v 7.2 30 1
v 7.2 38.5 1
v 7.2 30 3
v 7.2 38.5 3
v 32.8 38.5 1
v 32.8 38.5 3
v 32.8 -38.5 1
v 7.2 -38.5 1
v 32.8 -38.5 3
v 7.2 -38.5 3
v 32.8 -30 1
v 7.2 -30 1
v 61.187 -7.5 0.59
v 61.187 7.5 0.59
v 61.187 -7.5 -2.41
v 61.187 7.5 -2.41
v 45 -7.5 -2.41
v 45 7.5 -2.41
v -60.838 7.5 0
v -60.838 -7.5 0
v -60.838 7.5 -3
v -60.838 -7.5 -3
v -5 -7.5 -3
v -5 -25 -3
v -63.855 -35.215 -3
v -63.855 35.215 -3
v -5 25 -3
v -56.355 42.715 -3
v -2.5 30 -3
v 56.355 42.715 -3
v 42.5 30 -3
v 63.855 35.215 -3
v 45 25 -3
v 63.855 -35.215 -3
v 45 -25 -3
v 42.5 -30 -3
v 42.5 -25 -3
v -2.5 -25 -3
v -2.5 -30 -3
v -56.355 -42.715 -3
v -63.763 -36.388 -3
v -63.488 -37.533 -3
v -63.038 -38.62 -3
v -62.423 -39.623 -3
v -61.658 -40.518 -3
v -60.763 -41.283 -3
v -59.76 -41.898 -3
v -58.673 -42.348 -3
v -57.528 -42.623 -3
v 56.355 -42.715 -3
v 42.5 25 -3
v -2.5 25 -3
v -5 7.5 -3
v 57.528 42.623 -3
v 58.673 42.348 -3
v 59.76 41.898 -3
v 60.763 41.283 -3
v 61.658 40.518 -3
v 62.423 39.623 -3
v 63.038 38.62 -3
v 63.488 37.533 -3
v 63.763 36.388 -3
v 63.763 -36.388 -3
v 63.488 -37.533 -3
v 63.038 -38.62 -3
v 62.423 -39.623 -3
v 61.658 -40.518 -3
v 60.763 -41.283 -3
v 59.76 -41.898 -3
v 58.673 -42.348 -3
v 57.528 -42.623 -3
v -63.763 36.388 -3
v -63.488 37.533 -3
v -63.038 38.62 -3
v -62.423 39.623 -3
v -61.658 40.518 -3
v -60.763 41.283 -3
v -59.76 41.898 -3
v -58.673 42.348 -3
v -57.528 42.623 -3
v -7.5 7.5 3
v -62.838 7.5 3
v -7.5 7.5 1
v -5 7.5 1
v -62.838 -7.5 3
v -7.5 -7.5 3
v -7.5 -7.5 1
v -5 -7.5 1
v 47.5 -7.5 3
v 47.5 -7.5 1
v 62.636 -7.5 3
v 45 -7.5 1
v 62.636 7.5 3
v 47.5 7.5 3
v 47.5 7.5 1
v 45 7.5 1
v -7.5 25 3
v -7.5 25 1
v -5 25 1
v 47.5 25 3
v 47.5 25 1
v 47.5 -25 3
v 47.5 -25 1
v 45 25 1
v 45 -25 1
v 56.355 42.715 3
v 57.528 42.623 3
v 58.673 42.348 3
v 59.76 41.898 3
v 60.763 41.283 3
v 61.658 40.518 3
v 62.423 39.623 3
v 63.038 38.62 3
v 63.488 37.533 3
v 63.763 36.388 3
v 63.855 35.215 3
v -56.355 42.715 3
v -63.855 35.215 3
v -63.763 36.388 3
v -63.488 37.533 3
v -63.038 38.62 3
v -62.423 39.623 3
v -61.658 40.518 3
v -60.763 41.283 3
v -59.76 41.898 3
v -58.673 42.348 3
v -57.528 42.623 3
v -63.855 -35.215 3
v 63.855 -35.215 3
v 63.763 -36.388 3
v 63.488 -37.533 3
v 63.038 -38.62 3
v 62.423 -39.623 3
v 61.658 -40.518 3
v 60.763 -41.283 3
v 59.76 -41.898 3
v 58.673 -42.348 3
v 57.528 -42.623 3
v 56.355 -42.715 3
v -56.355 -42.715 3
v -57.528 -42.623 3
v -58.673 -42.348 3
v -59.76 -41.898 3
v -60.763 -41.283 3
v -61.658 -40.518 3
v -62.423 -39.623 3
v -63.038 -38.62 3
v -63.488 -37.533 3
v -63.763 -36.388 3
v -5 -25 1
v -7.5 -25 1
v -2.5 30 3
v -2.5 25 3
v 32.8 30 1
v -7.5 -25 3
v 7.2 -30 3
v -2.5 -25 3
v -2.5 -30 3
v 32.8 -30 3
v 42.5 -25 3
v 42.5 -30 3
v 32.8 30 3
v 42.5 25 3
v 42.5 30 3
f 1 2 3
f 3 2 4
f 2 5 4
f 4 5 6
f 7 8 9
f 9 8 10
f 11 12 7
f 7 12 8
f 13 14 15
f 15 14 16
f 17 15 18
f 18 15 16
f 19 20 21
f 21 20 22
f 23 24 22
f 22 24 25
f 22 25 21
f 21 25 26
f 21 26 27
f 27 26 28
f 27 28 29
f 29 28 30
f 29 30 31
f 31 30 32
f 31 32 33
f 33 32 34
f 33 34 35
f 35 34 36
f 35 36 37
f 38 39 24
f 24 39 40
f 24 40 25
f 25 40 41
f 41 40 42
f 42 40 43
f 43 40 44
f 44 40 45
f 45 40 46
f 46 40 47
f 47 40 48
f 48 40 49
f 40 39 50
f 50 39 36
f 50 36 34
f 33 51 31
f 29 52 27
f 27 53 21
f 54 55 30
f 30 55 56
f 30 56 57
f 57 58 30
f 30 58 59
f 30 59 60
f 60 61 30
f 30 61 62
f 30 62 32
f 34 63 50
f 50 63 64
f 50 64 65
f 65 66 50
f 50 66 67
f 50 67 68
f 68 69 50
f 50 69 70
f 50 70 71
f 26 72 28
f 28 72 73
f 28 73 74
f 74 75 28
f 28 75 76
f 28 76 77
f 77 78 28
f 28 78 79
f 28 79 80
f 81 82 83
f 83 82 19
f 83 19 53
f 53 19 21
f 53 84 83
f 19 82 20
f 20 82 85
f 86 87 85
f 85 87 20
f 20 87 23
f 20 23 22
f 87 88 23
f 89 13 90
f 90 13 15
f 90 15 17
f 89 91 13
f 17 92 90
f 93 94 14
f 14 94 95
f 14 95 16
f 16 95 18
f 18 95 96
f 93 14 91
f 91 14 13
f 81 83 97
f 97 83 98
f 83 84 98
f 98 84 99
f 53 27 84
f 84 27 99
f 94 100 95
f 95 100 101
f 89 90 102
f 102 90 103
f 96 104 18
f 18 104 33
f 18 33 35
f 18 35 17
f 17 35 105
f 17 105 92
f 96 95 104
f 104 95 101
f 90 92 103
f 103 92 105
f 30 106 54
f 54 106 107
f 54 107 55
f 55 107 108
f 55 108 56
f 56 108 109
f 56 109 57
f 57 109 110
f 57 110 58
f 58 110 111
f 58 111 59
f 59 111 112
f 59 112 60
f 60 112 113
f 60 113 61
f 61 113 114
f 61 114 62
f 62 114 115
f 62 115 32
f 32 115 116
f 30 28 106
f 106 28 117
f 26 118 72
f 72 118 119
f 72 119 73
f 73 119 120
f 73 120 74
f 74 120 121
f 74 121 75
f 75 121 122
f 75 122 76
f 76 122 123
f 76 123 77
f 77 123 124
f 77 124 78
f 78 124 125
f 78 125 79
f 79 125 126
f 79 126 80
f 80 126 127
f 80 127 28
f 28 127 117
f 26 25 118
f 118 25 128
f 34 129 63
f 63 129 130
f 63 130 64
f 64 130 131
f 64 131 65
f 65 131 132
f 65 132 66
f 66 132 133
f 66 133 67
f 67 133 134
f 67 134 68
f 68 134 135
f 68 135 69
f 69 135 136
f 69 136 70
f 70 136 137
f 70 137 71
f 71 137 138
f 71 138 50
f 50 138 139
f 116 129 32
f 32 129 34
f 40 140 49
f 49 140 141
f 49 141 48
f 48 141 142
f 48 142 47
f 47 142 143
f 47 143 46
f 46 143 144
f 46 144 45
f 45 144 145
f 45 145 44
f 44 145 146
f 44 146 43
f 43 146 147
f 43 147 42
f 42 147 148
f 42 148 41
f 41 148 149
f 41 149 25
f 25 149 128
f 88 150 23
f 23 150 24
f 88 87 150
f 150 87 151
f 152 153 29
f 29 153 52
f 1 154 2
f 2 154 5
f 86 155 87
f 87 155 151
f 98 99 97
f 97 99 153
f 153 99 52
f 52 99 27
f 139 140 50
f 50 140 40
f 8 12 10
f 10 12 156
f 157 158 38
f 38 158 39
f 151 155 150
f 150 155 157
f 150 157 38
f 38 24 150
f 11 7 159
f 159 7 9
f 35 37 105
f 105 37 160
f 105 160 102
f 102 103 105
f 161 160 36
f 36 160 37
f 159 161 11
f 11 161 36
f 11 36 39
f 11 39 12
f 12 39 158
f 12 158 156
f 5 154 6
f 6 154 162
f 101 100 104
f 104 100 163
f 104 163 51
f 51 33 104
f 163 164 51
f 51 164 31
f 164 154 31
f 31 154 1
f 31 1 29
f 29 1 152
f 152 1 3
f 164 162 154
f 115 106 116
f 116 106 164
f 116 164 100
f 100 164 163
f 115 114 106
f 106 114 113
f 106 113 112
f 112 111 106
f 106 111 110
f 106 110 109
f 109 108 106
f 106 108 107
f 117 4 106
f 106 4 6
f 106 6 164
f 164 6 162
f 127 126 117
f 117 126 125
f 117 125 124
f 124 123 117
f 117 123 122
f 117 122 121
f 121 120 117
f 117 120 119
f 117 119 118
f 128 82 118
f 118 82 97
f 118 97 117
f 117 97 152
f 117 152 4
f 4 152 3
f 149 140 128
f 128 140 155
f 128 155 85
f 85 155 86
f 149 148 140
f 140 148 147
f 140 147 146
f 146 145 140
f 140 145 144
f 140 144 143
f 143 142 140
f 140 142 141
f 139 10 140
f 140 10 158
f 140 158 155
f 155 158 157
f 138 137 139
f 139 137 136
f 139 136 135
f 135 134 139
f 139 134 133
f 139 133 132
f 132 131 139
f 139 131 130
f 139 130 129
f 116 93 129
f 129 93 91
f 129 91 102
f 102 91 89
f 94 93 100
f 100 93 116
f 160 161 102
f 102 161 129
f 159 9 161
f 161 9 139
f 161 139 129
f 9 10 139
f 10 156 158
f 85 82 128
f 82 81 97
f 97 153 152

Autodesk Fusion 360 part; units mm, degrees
sketch "Sketch1" plane through (0, 0, 0) normal (0, 0, 1) x (1, 0, 0)
  line L0 (63.855, -42.715) -> (-63.855, -42.715)
  line L1 (-63.855, -42.715) -> (-63.855, 42.715)
  line L2 (-63.855, 42.715) -> (63.855, 42.715)
  line L3 (63.855, 42.715) -> (63.855, -42.715)
  line L4 (63.855, -42.715) -> (-63.855, 42.715) construction
  line L5 (-63.855, -42.715) -> (63.855, 42.715) construction
  line L6 (45, -38.5) -> (-5, -38.5)
  line L7 (-5, -38.5) -> (-5, 38.5)
  line L8 (-5, 38.5) -> (45, 38.5)
  line L9 (45, 38.5) -> (45, -38.5)
  line L10 (45, -38.5) -> (-5, 38.5) construction
  line L11 (-5, -38.5) -> (45, 38.5) construction
  line L12 (-2.5, 30) -> (42.5, 30)
  line L13 (42.5, 30) -> (42.5, -30)
  line L14 (42.5, -30) -> (-2.5, -30)
  line L15 (-2.5, -30) -> (-2.5, 30)
  line L16 (-2.5, 30) -> (42.5, -30) construction
  line L17 (42.5, 30) -> (-2.5, -30) construction
  line L18 (-7.5, 25) -> (47.5, 25)
  line L19 (47.5, 25) -> (47.5, -25)
  line L20 (47.5, -25) -> (-7.5, -25)
  line L21 (-7.5, -25) -> (-7.5, 25)
  line L22 (-7.5, 25) -> (47.5, -25) construction
  line L23 (47.5, 25) -> (-7.5, -25) construction
  line L24 (63.855, 42.715) -> (83.855, 42.715)
  line L25 (83.855, 42.715) -> (83.855, -42.715)
  line L26 (83.855, -42.715) -> (63.855, -42.715)
  line L27 (63.855, -42.715) -> (63.855, 42.715)
  line L28 (-63.855, 42.715) -> (-43.855, 42.715)
  line L29 (-43.855, 42.715) -> (-43.855, -42.715)
  line L30 (-43.855, -42.715) -> (-63.855, -42.715)
  line L31 (-63.855, -42.715) -> (-63.855, 42.715)
  point P0 (20, 0)
  point P1 (20, 0)
  point P2 (20, 0)
  dimension "d1" = 85.43
  dimension "d2" = 127.71
  dimension "d3" = 50
  dimension "d4" = 77
  dimension "d5" = 45
  dimension "d6" = 60
  dimension "d7" = 55
  dimension "d8" = 50
  dimension "d43" = 20
  dimension "d44" = 20
extrude "Extrude1" add sketch "Sketch1" along normal blind 3 contours L0 L2 L3 L27 L29 | L0 L1 L2 L28 L29 L30 L31 makes body 1
extrude "Extrude2" add sketch "Sketch1" along normal blind 1 contours L6 L7 L9 L13 L14 L15 L20 | L9 L18 L19 L20 | L7 L18 L20 L21 | L7 L8 L9 L12 L13 L15 L18 bodies 1
fillet "Fillet1" radius 7.5 4 edges at (-63.855, -42.715, 1.5) (63.855, -42.715, 1.5) (-63.855, 42.715, 1.5) (63.855, 42.715, 1.5) on bodies 1
sketch "Sketch2" plane through (0, 0, 3) normal (0, 0, 1) x (-1, 0, 0)
  line L0 (-56.355, -42.715) -> (56.355, -42.715)
  line L1 (56.355, 42.715) -> (-56.355, 42.715)
  line L2 (5, 25) -> (7.5, 25)
  line L3 (7.5, 25) -> (7.5, -25)
  line L4 (7.5, -25) -> (5, -25)
  line L5 (5, -25) -> (5, -38.5)
  line L6 (5, -38.5) -> (-45, -38.5)
  line L7 (-45, -38.5) -> (-45, -25)
  line L8 (-45, -25) -> (-47.5, -25)
  line L9 (-47.5, -25) -> (-47.5, 25)
  line L10 (-47.5, 25) -> (-45, 25)
  line L11 (-45, 25) -> (-45, 38.5)
  line L12 (-45, 38.5) -> (5, 38.5)
  line L13 (5, 38.5) -> (5, 25)
  line L14 (5, 25) -> (5, 27.5)
  arc A0 (7.5, 25) -> (5, 27.5) centre (3.9613, 23.9613) ccw
  line L15 (-20, 5) -> (-20, 10)
  line L16 (-20, 10) -> (-20, 5)
  line L17 (-20, 5) -> (-15, 5)
  arc A1 (5, -17.5) -> (7.5, -15) centre (3.9613, -13.9613) ccw
  arc A2 (-47.5, -15) -> (-45, -17.5) centre (-43.9613, -13.9613) ccw
  arc A3 (-45, 27.5) -> (-47.5, 25) centre (-43.9613, 23.9613) ccw
  arc A4 (-63.855, -35.215) -> (-56.355, -42.715) centre (-56.355, -35.215) ccw
  arc A5 (56.355, -42.715) -> (63.855, -35.215) centre (56.355, -35.215) ccw
  line L18 (63.855, -35.215) -> (63.855, 35.215)
  arc A6 (63.855, 35.215) -> (56.355, 42.715) centre (56.355, 35.215) ccw
  arc A7 (-56.355, 42.715) -> (-63.855, 35.215) centre (-56.355, 35.215) ccw
  line L19 (-63.855, 35.215) -> (-63.855, -35.215)
  dimension "d14" = 2.5
extrude "Extrude3" [suppressed]
fillet "Fillet2" [suppressed]
ref_plane "WorkPlane1" through (12.125, 0, 0) normal (0, -1, 0) x (1, 0, 0)
sketch "Sketch5" plane through (12.125, 0, 0) normal (0, -1, 0) x (1, 0, 0)
  line L0 (-15, 3) -> (-72.9634, 3)
  line L1 (-72.9634, 3) -> (-72.9634, 0)
  line L2 (-72.9634, 0) -> (-15, 0)
  line L3 (-15, 0) -> (-15, 3)
  line L4 (-72.9634, 0) -> (-74.9634, 3)
  line L5 (-74.9634, 3) -> (-72.9634, 3)
  line L6 (32, 3) -> (49.0623, 3)
  line L7 (49.0623, 3) -> (49.0623, 0.5905)
  line L8 (49.0623, 0.5905) -> (32, 0.5905)
  line L9 (32, 0.5905) -> (32, 3)
  line L10 (49.0623, 0.5905) -> (50.5109, 3)
  line L11 (50.5109, 3) -> (49.0623, 3)
extrude "Extrude5" cut sketch "Sketch5" along normal mid plane 15 bodies 1
extrude "Extrude9" add 1 faces at (-40.7311, -25.0717, 0) along direction (0, 0, -1) blind 3 on bodies 1 bodies 1
extrude "Extrude10" cut 1 faces at (55.7915, 2.5, 0.5905) along direction (0, 0, -1) blind 3 on bodies 1 bodies 1
sketch "Sketch6" plane through (0, 0, 1) normal (0, 0, 1) x (-1, 0, 0)
  line L0 (-45, -25) -> (-45, -38.5)
  line L1 (-45, -38.5) -> (5, -38.5)
  line L2 (5, -38.5) -> (5, -25)
  line L3 (2.5, -25) -> (2.5, -30)
  line L4 (2.5, -30) -> (-42.5, -30)
  line L5 (-42.5, -30) -> (-42.5, -25)
  line L6 (-20, -38.5) -> (-7.2, -38.5)
  line L7 (-20, -38.5) -> (-32.8, -38.5)
  line L8 (-7.2, -38.5) -> (-32.8, -38.5)
  line L9 (-32.8, -38.5) -> (-32.8, 39.8185)
  line L10 (-32.8, 39.8185) -> (-7.2, 39.8185)
  line L11 (-7.2, 39.8185) -> (-7.2, -38.5)
  line L12 (-42.5, -25) -> (-45, -25)
  line L13 (5, -25) -> (2.5, -25)
  dimension "d35" = 12.8
  dimension "d36" = 12.8
extrude "Extrude12" add sketch "Sketch6" along normal blind 2 separate body contours L0 L1 L4 L5 L9 L12 | L1 L2 L3 L4 L11 L13 makes body 2 at (-0.1, 35.6667, 1) makes body 3 at (40.1, 35.6667, 1)
mirror "Mirror1" about plane through (0, 0, 0) normal (0, 1, 0) of bodies 3 2 makes body 4 at (-0.1, -35.6667, 1) makes body 5 at (40.1, -35.6667, 1)
combine "Combine1" operation add target body 5 tool bodies 3 4 1 2
